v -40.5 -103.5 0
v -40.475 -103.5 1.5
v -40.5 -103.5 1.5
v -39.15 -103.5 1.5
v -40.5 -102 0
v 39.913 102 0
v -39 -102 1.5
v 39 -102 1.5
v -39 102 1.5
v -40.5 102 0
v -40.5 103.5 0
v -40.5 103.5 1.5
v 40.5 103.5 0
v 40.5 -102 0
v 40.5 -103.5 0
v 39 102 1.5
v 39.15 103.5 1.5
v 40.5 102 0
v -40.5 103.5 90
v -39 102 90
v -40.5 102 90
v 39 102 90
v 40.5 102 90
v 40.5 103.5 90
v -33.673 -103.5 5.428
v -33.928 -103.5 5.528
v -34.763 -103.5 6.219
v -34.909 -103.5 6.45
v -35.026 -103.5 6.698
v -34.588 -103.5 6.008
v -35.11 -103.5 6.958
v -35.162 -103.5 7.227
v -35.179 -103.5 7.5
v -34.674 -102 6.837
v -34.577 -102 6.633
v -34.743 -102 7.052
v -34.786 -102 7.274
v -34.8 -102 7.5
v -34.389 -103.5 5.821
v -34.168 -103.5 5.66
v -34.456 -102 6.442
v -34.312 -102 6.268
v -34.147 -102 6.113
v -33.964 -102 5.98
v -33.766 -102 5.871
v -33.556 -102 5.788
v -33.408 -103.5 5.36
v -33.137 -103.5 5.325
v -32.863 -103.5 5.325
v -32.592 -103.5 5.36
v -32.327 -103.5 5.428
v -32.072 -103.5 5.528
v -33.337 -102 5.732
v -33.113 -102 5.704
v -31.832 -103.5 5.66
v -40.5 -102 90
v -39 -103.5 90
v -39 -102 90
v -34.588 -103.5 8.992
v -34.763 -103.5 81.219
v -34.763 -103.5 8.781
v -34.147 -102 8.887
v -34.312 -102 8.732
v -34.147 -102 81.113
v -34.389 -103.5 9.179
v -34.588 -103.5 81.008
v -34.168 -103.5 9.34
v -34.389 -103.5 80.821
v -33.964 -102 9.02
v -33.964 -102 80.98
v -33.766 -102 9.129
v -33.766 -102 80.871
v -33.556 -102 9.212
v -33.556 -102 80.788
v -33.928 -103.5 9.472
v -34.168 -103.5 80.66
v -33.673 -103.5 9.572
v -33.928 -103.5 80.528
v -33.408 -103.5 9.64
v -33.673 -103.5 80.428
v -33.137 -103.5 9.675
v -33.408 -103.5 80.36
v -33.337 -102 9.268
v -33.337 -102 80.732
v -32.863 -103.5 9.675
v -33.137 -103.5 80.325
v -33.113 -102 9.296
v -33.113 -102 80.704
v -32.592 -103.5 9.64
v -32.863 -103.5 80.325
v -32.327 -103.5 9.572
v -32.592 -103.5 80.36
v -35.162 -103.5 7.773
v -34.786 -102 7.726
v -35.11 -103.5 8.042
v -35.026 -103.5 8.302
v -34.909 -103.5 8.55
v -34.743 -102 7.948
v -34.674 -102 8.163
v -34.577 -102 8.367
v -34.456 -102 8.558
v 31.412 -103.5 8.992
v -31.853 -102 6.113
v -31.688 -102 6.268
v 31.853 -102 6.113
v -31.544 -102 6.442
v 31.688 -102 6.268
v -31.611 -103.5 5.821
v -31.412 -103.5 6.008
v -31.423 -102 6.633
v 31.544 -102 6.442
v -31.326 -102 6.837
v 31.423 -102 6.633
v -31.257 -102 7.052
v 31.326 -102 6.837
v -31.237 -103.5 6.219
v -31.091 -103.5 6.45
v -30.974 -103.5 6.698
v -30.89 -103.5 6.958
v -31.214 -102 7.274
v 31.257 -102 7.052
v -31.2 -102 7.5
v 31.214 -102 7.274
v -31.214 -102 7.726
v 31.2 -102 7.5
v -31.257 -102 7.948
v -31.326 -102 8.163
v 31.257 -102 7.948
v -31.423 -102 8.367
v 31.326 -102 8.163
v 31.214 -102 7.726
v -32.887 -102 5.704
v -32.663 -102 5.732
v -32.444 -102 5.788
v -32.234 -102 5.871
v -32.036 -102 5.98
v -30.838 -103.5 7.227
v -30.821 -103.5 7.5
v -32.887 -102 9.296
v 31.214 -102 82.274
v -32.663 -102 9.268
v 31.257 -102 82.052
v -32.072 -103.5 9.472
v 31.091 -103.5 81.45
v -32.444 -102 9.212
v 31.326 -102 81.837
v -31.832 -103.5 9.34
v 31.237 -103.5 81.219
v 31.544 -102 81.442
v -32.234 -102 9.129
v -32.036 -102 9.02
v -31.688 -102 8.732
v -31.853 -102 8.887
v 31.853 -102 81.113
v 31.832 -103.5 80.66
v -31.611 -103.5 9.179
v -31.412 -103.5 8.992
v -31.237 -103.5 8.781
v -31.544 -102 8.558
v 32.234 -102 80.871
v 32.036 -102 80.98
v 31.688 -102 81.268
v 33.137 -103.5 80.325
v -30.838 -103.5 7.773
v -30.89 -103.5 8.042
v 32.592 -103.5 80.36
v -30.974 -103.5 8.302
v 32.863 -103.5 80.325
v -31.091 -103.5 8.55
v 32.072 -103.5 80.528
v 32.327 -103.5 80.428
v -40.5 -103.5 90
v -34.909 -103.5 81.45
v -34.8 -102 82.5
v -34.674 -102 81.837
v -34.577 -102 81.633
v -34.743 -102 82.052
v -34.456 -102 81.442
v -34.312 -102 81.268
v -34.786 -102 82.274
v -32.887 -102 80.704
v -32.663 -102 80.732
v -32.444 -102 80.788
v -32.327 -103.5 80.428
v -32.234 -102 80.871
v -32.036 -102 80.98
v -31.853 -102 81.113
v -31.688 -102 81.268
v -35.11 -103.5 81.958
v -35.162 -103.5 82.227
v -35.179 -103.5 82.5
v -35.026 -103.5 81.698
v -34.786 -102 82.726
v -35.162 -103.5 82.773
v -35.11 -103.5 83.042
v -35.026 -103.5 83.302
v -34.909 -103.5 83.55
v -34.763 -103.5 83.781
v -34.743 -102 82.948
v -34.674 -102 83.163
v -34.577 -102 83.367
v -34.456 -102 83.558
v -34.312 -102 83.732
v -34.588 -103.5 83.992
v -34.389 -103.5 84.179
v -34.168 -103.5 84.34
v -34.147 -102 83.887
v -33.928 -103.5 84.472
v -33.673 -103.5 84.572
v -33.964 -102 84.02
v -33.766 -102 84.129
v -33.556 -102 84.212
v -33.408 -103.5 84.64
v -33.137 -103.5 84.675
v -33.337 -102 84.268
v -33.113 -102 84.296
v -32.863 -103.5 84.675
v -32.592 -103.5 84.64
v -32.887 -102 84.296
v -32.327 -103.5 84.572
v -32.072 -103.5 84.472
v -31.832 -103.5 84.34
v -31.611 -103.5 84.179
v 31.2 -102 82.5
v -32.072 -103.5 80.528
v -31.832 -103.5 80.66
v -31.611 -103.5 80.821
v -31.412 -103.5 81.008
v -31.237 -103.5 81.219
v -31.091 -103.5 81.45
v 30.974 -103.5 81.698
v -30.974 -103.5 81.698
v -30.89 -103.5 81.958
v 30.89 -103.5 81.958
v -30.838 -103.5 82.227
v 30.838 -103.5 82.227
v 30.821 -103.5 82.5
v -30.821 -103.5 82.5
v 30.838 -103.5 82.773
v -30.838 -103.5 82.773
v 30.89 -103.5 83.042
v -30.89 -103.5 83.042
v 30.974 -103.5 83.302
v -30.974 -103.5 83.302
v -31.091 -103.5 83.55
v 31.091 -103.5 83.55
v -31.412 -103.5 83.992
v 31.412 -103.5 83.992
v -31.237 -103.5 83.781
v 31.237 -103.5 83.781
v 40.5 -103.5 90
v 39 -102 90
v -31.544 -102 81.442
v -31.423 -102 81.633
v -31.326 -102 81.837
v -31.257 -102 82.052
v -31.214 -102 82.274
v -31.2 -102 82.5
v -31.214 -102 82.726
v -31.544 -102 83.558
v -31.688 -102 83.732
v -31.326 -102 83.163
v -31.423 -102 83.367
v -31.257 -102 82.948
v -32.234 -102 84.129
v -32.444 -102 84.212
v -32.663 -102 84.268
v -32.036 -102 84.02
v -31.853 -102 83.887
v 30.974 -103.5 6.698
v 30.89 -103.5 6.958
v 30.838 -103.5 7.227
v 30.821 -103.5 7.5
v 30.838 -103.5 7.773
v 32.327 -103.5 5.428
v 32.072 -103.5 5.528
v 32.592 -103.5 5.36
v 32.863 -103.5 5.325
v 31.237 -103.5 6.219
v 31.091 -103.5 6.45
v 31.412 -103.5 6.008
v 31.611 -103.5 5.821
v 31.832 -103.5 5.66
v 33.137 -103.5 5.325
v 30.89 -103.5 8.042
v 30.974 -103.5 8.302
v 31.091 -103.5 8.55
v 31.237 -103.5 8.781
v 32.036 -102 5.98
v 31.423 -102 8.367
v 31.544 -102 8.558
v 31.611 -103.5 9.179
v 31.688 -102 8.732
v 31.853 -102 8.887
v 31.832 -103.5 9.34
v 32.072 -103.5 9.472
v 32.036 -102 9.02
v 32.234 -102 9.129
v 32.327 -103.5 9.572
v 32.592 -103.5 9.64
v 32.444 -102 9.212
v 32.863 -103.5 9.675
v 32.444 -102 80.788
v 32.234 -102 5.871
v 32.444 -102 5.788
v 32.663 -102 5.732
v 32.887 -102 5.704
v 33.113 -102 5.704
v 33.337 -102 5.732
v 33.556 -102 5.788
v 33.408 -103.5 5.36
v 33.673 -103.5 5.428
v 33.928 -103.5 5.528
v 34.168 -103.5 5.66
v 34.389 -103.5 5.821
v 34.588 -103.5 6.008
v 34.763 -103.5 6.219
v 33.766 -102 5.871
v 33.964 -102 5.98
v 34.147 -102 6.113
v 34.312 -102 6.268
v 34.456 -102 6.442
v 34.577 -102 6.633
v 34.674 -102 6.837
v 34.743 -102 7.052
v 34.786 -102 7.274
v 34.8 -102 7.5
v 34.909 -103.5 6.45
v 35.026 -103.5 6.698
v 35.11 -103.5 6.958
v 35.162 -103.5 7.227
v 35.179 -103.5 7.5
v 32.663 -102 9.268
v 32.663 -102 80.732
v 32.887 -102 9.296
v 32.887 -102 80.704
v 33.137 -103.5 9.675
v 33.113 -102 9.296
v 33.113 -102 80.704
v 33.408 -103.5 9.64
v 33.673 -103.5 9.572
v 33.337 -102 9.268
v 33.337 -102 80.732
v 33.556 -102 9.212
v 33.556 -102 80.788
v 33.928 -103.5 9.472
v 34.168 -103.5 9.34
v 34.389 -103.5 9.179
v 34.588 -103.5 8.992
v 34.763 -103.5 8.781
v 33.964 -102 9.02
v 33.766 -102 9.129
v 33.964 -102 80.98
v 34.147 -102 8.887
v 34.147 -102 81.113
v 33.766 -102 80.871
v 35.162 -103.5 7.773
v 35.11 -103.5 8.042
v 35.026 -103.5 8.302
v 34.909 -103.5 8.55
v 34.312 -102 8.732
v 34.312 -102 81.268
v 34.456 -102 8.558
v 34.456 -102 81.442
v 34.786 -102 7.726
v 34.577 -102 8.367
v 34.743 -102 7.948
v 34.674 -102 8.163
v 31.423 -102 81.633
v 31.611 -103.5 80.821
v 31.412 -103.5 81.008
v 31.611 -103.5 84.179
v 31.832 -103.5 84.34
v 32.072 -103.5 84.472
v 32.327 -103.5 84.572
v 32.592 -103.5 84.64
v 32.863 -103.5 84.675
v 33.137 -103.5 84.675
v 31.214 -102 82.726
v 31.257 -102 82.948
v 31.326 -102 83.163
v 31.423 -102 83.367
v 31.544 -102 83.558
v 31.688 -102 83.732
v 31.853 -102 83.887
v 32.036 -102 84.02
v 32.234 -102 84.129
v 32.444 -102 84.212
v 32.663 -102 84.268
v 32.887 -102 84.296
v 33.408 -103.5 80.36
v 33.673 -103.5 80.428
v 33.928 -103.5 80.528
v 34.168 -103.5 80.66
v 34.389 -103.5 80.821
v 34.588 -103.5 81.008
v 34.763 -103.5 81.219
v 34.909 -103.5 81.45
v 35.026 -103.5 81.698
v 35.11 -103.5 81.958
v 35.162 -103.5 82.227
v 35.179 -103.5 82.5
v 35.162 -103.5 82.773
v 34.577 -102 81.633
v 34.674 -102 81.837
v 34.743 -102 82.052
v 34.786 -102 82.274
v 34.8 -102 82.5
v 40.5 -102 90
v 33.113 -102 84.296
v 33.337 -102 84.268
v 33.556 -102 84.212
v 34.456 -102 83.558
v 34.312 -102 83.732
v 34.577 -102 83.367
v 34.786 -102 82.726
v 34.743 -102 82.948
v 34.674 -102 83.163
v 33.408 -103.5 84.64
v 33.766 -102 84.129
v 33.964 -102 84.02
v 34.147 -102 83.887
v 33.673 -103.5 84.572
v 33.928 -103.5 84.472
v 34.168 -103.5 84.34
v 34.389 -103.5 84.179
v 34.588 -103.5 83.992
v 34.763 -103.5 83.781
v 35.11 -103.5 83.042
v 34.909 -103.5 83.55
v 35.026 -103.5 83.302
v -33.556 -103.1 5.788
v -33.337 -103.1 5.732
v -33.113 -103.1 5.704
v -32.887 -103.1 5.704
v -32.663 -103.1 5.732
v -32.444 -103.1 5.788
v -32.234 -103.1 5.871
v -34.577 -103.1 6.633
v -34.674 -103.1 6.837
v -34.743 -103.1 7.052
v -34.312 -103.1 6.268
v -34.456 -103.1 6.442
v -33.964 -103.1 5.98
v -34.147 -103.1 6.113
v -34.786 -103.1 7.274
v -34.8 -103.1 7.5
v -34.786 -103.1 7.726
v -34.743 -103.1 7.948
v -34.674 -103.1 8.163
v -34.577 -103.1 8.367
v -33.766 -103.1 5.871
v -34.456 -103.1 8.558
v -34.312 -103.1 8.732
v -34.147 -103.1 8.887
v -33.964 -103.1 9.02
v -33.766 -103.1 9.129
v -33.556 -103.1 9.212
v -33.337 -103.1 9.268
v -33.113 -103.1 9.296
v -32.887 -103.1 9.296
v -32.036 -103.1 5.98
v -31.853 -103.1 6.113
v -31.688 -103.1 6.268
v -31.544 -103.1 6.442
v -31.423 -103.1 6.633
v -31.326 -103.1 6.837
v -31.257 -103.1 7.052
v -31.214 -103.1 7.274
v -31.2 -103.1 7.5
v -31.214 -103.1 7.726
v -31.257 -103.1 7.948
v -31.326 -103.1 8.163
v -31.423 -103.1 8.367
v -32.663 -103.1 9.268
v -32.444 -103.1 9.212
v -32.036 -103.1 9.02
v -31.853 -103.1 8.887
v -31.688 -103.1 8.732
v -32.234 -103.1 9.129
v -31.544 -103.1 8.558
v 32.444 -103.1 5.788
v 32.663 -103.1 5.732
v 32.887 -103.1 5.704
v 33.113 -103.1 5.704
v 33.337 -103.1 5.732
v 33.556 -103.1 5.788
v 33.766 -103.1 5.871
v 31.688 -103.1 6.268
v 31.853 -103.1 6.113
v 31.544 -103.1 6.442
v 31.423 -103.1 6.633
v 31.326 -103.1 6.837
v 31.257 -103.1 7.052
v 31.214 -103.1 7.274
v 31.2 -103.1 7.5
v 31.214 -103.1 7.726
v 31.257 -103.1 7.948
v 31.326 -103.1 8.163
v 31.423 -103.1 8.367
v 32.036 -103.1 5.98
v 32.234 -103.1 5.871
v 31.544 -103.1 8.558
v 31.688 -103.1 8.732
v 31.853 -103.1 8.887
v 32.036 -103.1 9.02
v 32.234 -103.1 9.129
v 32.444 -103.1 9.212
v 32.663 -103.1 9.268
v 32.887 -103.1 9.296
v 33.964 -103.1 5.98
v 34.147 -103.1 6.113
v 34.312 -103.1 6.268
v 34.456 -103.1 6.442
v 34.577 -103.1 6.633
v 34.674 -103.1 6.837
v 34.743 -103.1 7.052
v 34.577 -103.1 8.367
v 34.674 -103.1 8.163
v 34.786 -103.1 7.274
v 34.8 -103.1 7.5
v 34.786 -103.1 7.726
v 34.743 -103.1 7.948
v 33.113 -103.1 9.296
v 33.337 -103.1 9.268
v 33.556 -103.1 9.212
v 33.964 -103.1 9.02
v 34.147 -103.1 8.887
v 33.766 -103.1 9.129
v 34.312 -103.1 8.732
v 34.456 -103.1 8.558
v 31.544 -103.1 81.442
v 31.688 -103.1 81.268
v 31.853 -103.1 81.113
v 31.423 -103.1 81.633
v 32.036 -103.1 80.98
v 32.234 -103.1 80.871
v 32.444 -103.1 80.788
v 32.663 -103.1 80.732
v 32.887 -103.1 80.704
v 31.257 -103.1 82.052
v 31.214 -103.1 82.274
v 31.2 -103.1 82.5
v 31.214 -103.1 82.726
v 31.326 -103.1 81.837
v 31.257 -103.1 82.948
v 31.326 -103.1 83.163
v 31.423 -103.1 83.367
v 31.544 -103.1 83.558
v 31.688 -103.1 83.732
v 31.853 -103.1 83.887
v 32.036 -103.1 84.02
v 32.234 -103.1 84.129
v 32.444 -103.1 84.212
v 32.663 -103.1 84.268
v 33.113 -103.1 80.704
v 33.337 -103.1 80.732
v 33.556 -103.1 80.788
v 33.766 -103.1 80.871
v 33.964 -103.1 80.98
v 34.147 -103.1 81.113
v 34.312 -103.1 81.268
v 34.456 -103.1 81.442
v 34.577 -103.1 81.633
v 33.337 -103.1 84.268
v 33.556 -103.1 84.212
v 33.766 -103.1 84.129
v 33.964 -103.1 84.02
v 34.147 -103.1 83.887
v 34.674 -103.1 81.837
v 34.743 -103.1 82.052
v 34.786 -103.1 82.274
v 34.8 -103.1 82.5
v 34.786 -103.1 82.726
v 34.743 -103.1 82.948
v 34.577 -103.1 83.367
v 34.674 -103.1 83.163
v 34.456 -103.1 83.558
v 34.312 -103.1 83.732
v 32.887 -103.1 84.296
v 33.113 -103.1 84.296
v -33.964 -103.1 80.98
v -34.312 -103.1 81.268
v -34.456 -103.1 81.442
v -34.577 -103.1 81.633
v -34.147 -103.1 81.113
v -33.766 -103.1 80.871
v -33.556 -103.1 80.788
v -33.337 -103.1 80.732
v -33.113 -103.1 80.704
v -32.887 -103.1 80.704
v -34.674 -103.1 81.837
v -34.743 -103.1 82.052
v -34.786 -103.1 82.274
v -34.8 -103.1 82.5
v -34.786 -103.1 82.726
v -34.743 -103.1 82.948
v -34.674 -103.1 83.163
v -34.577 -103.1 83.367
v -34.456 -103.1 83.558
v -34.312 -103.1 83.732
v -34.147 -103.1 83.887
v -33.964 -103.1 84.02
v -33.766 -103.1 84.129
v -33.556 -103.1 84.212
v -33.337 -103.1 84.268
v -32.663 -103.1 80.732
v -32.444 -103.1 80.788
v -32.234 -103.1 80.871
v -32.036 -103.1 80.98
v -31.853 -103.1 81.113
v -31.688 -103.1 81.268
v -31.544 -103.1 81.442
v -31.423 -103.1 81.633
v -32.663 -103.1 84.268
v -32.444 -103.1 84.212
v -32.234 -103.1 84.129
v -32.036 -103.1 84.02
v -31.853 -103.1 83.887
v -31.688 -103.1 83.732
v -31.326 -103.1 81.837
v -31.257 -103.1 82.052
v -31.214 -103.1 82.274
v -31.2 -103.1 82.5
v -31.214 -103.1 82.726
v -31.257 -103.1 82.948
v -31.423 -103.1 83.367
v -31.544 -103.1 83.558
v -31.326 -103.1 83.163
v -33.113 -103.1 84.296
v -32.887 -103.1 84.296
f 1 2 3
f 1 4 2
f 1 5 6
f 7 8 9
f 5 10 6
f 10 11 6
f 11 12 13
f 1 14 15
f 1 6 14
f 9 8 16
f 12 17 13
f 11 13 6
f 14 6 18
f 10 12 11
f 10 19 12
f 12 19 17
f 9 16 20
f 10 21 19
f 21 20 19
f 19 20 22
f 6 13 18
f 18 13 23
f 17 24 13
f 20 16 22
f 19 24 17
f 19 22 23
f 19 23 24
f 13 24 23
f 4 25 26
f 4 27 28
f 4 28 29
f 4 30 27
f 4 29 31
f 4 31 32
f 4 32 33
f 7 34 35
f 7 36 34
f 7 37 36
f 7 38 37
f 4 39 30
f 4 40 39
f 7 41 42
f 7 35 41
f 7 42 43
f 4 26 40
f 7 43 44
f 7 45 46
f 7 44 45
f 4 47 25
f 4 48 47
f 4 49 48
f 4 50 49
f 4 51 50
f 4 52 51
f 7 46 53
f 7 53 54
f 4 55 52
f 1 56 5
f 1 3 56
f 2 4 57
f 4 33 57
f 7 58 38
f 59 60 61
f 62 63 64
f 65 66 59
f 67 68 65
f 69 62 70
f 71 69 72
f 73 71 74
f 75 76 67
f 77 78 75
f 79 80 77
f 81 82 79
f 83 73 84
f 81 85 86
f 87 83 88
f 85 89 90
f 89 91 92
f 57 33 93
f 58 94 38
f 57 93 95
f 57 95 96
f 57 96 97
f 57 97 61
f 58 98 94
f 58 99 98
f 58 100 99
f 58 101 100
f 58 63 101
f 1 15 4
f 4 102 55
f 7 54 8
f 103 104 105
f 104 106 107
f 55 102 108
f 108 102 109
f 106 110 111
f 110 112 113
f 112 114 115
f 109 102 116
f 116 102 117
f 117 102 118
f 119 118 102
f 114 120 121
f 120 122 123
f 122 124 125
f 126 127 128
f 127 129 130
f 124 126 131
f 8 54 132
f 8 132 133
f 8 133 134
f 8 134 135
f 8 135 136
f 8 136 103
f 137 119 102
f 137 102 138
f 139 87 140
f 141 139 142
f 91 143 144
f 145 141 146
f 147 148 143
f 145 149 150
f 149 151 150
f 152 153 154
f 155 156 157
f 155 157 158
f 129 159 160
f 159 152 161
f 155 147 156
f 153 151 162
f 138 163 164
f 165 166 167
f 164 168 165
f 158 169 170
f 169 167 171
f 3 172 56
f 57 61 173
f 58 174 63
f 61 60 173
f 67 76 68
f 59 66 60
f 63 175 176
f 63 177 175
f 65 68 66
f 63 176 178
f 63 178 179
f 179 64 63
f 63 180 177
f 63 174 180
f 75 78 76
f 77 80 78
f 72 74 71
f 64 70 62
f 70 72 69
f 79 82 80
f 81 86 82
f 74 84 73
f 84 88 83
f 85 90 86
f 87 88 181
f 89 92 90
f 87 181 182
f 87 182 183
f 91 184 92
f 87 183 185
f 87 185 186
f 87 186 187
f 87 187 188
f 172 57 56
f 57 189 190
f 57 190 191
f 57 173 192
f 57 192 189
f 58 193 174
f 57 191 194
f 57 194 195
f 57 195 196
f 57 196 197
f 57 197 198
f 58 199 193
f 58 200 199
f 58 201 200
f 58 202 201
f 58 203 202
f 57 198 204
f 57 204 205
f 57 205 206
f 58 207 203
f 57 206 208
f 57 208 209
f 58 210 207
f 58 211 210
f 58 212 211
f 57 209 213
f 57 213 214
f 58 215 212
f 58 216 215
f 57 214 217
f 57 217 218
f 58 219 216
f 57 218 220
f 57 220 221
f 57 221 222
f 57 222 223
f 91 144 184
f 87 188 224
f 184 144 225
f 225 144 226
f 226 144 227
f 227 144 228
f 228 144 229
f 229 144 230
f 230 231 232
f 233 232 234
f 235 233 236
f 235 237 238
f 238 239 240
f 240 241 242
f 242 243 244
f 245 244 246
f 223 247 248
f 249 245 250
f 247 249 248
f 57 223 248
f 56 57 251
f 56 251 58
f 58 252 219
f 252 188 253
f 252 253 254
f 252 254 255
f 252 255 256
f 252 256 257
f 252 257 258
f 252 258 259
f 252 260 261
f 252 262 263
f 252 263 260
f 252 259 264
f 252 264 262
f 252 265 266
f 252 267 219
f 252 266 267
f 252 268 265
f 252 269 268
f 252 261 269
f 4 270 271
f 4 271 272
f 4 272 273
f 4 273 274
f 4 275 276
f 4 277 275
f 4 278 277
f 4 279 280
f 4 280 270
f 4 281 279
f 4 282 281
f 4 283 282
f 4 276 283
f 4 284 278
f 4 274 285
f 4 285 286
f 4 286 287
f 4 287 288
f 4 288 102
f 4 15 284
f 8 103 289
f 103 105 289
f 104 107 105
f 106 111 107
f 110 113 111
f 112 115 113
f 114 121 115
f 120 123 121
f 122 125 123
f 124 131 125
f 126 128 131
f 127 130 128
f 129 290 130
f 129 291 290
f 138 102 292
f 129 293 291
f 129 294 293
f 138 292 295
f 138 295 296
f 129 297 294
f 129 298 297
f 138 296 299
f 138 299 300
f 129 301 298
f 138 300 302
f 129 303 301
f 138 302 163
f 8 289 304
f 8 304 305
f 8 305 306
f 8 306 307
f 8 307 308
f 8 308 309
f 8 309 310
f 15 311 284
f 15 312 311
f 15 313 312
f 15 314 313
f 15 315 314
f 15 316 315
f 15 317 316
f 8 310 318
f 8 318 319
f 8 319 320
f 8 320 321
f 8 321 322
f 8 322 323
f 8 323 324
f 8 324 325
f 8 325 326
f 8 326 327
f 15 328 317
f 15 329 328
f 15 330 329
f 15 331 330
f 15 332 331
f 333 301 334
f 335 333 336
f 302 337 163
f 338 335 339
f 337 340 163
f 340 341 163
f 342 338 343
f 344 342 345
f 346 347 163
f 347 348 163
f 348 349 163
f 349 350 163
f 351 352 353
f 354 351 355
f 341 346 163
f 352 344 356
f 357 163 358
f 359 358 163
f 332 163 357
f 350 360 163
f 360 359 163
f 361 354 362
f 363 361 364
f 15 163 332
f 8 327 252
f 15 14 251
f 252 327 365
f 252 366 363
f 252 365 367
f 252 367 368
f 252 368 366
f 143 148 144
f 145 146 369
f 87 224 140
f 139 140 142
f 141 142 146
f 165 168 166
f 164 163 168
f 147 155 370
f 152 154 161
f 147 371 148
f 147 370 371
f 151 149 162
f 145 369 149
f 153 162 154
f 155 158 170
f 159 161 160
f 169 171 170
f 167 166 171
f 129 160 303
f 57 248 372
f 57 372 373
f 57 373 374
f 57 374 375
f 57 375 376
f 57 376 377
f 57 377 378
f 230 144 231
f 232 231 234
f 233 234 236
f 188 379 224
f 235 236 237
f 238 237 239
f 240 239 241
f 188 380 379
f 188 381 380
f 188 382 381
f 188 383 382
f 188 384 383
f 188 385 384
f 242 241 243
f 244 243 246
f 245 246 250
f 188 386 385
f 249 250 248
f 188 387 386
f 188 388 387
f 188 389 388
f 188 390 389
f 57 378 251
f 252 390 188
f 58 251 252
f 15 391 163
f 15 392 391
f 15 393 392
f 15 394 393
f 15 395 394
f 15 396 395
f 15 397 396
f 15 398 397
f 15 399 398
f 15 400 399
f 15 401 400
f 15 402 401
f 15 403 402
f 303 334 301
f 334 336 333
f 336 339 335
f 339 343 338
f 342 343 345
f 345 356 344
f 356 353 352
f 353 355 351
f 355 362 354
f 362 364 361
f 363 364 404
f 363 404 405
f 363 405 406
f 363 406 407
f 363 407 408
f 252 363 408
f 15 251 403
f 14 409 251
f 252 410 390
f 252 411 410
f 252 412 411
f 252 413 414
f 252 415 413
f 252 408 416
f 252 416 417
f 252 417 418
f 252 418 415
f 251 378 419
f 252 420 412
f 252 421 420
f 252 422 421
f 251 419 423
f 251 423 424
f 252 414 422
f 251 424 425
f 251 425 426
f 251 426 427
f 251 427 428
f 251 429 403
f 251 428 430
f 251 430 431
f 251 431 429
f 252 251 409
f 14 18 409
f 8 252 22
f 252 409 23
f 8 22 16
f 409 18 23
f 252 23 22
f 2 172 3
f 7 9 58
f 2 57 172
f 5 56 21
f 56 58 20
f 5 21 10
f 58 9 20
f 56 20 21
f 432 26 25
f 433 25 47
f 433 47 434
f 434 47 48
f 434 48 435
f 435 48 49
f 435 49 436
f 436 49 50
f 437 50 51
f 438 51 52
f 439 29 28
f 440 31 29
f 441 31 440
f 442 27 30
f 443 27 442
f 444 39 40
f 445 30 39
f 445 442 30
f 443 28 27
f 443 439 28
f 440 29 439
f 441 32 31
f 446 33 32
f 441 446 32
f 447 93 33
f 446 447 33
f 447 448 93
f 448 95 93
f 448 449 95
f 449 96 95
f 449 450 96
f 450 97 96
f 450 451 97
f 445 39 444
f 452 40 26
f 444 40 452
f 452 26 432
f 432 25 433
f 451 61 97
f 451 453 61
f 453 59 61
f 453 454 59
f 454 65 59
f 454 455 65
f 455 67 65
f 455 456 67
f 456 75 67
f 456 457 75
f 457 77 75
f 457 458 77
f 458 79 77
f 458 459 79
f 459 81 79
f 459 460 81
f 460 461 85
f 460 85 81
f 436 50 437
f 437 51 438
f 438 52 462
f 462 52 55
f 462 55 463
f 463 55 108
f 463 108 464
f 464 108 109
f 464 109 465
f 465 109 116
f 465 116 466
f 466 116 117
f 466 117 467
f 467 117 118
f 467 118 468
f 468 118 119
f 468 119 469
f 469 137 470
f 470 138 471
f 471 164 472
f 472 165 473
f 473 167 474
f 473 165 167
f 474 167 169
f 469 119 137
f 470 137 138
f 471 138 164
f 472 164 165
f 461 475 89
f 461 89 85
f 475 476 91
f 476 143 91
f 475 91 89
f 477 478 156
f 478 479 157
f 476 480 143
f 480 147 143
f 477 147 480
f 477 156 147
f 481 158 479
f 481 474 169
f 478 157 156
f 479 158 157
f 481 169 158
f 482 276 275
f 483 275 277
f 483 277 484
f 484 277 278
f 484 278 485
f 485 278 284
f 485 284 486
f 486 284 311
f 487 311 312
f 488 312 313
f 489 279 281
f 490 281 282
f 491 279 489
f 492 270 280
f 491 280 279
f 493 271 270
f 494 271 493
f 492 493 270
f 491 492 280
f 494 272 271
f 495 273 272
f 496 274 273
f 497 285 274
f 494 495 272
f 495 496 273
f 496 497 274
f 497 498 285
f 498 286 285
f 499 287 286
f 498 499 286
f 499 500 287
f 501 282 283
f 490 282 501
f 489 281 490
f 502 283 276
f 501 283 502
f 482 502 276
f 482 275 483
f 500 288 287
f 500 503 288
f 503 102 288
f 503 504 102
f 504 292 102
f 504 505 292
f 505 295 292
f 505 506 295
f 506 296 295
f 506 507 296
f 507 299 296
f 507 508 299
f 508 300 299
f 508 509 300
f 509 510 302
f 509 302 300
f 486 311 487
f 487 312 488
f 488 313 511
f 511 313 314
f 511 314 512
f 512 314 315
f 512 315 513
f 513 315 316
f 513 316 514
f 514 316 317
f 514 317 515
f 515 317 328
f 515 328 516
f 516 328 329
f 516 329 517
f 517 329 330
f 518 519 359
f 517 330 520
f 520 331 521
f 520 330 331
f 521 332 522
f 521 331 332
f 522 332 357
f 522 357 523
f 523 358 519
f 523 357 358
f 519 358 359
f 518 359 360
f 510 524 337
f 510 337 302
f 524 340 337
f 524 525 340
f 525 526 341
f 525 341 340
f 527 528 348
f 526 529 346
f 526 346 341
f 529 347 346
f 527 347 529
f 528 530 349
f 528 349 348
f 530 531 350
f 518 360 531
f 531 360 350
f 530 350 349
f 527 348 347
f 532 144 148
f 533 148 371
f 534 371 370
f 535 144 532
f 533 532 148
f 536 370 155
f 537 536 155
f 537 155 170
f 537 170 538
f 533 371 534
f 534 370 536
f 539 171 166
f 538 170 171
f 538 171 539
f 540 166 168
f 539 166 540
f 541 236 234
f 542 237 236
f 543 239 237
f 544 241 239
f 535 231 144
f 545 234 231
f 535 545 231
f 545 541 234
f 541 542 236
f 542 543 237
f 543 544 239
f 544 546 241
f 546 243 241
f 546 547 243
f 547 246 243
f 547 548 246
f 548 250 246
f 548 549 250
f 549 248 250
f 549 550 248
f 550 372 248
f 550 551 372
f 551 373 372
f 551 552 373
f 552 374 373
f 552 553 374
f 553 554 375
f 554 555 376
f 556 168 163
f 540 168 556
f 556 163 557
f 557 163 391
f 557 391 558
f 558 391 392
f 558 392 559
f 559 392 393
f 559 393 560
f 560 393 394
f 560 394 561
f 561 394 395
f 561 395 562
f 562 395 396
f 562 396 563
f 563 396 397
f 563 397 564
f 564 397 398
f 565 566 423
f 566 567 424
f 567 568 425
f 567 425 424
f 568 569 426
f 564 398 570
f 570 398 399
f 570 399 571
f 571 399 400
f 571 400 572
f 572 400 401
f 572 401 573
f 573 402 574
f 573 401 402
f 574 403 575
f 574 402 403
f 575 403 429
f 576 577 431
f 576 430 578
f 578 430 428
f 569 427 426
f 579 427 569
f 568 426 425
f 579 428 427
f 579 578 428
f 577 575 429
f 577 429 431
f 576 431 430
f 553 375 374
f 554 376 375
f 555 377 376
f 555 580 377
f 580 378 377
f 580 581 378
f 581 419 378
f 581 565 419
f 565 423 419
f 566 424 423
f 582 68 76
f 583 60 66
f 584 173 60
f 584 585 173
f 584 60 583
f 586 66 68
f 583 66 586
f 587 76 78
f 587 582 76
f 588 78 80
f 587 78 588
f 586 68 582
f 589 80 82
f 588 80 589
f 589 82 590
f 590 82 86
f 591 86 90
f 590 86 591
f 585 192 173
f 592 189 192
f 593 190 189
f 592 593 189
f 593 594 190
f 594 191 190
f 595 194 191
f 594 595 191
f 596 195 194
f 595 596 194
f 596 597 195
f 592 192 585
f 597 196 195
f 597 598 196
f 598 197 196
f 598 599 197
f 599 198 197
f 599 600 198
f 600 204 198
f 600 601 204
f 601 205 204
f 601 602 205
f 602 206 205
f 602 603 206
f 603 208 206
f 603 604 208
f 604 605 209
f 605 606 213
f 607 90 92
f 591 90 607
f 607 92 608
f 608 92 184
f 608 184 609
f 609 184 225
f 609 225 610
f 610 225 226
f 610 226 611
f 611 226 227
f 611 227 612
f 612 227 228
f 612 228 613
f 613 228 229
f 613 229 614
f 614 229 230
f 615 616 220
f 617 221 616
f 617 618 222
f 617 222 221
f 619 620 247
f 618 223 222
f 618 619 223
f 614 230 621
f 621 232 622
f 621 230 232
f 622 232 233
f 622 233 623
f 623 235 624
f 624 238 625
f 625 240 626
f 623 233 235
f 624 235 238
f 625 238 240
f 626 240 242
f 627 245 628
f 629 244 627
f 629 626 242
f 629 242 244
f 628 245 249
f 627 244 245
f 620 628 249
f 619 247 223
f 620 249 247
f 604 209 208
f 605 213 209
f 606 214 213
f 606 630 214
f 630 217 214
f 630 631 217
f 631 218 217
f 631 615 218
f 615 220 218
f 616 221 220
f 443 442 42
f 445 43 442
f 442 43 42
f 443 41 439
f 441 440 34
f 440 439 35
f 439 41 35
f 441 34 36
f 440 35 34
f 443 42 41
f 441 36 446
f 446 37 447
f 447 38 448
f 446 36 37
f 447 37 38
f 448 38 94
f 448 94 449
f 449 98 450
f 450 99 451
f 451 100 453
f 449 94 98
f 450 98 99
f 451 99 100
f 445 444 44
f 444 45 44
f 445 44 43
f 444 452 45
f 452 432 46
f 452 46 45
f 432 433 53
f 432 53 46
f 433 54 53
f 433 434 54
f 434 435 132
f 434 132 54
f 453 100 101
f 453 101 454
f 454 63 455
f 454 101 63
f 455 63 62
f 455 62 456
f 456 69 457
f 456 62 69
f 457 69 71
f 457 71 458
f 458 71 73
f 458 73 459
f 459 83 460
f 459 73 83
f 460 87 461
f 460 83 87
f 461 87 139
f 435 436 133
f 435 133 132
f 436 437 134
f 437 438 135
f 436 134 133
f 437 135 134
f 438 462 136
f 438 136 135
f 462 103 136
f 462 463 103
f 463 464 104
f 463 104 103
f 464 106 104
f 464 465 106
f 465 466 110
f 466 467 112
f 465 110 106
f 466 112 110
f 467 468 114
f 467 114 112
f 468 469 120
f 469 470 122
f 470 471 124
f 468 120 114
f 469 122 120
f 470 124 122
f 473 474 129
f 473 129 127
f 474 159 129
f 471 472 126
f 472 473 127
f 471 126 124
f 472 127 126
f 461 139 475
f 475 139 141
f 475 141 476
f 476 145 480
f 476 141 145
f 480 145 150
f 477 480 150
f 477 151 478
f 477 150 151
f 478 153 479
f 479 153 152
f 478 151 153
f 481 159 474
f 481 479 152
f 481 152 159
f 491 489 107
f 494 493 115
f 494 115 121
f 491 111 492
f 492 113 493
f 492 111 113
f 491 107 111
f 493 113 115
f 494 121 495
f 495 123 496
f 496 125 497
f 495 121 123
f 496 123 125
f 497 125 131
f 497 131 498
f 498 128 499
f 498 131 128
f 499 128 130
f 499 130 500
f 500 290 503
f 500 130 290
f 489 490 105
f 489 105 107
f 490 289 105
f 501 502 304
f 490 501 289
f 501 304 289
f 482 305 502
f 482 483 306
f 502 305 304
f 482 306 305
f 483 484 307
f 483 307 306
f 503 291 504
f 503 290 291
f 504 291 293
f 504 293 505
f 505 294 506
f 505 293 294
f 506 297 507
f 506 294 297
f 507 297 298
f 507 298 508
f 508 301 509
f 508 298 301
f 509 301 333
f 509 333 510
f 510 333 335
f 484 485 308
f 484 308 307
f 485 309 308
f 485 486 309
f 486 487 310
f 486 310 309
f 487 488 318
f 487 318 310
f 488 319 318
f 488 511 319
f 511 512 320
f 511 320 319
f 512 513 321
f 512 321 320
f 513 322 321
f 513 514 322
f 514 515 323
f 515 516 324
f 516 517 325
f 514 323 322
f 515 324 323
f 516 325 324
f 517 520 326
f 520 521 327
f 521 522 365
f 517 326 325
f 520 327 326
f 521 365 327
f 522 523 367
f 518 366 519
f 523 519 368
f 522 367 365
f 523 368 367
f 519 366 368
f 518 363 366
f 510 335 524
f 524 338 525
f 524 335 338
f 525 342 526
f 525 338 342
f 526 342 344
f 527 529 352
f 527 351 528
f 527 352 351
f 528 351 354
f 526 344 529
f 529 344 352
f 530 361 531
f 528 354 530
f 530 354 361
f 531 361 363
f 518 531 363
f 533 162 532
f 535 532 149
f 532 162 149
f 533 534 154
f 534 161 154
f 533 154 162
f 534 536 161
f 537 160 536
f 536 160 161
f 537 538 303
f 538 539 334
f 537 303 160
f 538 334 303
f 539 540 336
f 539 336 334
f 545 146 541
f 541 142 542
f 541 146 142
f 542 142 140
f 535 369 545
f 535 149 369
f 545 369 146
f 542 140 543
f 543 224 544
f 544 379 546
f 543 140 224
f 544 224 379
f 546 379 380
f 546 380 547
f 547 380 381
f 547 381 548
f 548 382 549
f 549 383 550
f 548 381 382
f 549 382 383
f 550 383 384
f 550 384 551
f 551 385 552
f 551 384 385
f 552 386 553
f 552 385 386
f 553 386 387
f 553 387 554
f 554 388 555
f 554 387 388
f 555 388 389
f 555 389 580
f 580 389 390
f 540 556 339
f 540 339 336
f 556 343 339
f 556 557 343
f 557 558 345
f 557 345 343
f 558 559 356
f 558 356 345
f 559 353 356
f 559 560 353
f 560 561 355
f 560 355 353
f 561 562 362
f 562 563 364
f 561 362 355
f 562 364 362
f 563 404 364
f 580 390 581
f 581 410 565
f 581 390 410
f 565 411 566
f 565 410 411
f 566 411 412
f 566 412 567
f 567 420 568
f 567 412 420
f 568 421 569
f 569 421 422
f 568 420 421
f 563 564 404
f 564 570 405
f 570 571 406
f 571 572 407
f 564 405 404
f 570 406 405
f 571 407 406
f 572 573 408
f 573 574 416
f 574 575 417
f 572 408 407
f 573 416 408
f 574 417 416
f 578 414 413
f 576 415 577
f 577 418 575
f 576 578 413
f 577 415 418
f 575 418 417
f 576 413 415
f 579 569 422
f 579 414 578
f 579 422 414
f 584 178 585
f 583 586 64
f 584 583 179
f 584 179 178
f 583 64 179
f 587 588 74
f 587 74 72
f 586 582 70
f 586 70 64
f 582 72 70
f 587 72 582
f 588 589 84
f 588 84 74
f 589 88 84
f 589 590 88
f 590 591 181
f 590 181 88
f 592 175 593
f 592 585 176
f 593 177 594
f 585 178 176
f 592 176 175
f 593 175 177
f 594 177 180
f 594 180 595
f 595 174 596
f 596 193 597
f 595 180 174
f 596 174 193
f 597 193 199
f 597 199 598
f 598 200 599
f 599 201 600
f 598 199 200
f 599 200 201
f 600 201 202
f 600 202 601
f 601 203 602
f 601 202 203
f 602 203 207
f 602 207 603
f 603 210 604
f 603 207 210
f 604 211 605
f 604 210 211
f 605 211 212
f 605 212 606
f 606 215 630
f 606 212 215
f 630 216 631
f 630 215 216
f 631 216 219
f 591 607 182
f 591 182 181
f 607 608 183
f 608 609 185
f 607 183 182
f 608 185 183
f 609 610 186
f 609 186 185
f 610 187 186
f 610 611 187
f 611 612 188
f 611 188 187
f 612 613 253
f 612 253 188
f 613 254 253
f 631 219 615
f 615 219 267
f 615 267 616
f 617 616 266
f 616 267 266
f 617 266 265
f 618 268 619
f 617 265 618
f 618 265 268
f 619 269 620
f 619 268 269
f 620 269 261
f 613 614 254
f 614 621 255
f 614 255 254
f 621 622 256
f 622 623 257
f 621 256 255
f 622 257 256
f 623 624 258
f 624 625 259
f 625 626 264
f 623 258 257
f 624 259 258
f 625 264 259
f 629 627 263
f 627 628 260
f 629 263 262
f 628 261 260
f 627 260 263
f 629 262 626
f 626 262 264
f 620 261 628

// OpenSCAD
$fn = 50;


difference() {
	union() {
		translate(v = [-40.5000000000, -103.5000000000, 0]) {
			cube(size = [81, 207, 1.5000000000]);
		}
		translate(v = [-40.5000000000, 102.0000000000, 0]) {
			cube(size = [81, 1.5000000000, 90]);
		}
		translate(v = [-40.5000000000, -103.5000000000, 0]) {
			cube(size = [81, 1.5000000000, 90]);
		}
		translate(v = [39.0000000000, -103.5000000000, 0]) {
			cube(size = [1.5000000000, 207, 90]);
		}
		translate(v = [-40.5000000000, -103.5000000000, 0]) {
			cube(size = [1.5000000000, 207, 90]);
		}
	}
	union() {
		translate(v = [33.0000000000, -105.0000000000, 82.5000000000]) {
			rotate(a = [90, 0, 0]) {
				difference() {
					union() {
						#translate(v = [0, 0, -15.0000000000]) {
							cylinder(h = 15, r = 1.5000000000);
						}
						#translate(v = [0, 0, -1.9000000000]) {
							cylinder(h = 1.9000000000, r1 = 1.8000000000, r2 = 3.6000000000);
						}
						#translate(v = [0, 0, -15.0000000000]) {
							cylinder(h = 15, r = 1.8000000000);
						}
						#translate(v = [0, 0, -15.0000000000]) {
							cylinder(h = 15, r = 1.5000000000);
						}
					}
					union();
				}
			}
		}
		translate(v = [-33.0000000000, -105.0000000000, 82.5000000000]) {
			rotate(a = [90, 0, 0]) {
				difference() {
					union() {
						#translate(v = [0, 0, -15.0000000000]) {
							cylinder(h = 15, r = 1.5000000000);
						}
						#translate(v = [0, 0, -1.9000000000]) {
							cylinder(h = 1.9000000000, r1 = 1.8000000000, r2 = 3.6000000000);
						}
						#translate(v = [0, 0, -15.0000000000]) {
							cylinder(h = 15, r = 1.8000000000);
						}
						#translate(v = [0, 0, -15.0000000000]) {
							cylinder(h = 15, r = 1.5000000000);
						}
					}
					union();
				}
			}
		}
		translate(v = [33.0000000000, -105.0000000000, 7.5000000000]) {
			rotate(a = [90, 0, 0]) {
				difference() {
					union() {
						#translate(v = [0, 0, -15.0000000000]) {
							cylinder(h = 15, r = 1.5000000000);
						}
						#translate(v = [0, 0, -1.9000000000]) {
							cylinder(h = 1.9000000000, r1 = 1.8000000000, r2 = 3.6000000000);
						}
						#translate(v = [0, 0, -15.0000000000]) {
							cylinder(h = 15, r = 1.8000000000);
						}
						#translate(v = [0, 0, -15.0000000000]) {
							cylinder(h = 15, r = 1.5000000000);
						}
					}
					union();
				}
			}
		}
		translate(v = [-33.0000000000, -105.0000000000, 7.5000000000]) {
			rotate(a = [90, 0, 0]) {
				difference() {
					union() {
						#translate(v = [0, 0, -15.0000000000]) {
							cylinder(h = 15, r = 1.5000000000);
						}
						#translate(v = [0, 0, -1.9000000000]) {
							cylinder(h = 1.9000000000, r1 = 1.8000000000, r2 = 3.6000000000);
						}
						#translate(v = [0, 0, -15.0000000000]) {
							cylinder(h = 15, r = 1.8000000000);
						}
						#translate(v = [0, 0, -15.0000000000]) {
							cylinder(h = 15, r = 1.5000000000);
						}
					}
					union();
				}
			}
		}
	}
}
